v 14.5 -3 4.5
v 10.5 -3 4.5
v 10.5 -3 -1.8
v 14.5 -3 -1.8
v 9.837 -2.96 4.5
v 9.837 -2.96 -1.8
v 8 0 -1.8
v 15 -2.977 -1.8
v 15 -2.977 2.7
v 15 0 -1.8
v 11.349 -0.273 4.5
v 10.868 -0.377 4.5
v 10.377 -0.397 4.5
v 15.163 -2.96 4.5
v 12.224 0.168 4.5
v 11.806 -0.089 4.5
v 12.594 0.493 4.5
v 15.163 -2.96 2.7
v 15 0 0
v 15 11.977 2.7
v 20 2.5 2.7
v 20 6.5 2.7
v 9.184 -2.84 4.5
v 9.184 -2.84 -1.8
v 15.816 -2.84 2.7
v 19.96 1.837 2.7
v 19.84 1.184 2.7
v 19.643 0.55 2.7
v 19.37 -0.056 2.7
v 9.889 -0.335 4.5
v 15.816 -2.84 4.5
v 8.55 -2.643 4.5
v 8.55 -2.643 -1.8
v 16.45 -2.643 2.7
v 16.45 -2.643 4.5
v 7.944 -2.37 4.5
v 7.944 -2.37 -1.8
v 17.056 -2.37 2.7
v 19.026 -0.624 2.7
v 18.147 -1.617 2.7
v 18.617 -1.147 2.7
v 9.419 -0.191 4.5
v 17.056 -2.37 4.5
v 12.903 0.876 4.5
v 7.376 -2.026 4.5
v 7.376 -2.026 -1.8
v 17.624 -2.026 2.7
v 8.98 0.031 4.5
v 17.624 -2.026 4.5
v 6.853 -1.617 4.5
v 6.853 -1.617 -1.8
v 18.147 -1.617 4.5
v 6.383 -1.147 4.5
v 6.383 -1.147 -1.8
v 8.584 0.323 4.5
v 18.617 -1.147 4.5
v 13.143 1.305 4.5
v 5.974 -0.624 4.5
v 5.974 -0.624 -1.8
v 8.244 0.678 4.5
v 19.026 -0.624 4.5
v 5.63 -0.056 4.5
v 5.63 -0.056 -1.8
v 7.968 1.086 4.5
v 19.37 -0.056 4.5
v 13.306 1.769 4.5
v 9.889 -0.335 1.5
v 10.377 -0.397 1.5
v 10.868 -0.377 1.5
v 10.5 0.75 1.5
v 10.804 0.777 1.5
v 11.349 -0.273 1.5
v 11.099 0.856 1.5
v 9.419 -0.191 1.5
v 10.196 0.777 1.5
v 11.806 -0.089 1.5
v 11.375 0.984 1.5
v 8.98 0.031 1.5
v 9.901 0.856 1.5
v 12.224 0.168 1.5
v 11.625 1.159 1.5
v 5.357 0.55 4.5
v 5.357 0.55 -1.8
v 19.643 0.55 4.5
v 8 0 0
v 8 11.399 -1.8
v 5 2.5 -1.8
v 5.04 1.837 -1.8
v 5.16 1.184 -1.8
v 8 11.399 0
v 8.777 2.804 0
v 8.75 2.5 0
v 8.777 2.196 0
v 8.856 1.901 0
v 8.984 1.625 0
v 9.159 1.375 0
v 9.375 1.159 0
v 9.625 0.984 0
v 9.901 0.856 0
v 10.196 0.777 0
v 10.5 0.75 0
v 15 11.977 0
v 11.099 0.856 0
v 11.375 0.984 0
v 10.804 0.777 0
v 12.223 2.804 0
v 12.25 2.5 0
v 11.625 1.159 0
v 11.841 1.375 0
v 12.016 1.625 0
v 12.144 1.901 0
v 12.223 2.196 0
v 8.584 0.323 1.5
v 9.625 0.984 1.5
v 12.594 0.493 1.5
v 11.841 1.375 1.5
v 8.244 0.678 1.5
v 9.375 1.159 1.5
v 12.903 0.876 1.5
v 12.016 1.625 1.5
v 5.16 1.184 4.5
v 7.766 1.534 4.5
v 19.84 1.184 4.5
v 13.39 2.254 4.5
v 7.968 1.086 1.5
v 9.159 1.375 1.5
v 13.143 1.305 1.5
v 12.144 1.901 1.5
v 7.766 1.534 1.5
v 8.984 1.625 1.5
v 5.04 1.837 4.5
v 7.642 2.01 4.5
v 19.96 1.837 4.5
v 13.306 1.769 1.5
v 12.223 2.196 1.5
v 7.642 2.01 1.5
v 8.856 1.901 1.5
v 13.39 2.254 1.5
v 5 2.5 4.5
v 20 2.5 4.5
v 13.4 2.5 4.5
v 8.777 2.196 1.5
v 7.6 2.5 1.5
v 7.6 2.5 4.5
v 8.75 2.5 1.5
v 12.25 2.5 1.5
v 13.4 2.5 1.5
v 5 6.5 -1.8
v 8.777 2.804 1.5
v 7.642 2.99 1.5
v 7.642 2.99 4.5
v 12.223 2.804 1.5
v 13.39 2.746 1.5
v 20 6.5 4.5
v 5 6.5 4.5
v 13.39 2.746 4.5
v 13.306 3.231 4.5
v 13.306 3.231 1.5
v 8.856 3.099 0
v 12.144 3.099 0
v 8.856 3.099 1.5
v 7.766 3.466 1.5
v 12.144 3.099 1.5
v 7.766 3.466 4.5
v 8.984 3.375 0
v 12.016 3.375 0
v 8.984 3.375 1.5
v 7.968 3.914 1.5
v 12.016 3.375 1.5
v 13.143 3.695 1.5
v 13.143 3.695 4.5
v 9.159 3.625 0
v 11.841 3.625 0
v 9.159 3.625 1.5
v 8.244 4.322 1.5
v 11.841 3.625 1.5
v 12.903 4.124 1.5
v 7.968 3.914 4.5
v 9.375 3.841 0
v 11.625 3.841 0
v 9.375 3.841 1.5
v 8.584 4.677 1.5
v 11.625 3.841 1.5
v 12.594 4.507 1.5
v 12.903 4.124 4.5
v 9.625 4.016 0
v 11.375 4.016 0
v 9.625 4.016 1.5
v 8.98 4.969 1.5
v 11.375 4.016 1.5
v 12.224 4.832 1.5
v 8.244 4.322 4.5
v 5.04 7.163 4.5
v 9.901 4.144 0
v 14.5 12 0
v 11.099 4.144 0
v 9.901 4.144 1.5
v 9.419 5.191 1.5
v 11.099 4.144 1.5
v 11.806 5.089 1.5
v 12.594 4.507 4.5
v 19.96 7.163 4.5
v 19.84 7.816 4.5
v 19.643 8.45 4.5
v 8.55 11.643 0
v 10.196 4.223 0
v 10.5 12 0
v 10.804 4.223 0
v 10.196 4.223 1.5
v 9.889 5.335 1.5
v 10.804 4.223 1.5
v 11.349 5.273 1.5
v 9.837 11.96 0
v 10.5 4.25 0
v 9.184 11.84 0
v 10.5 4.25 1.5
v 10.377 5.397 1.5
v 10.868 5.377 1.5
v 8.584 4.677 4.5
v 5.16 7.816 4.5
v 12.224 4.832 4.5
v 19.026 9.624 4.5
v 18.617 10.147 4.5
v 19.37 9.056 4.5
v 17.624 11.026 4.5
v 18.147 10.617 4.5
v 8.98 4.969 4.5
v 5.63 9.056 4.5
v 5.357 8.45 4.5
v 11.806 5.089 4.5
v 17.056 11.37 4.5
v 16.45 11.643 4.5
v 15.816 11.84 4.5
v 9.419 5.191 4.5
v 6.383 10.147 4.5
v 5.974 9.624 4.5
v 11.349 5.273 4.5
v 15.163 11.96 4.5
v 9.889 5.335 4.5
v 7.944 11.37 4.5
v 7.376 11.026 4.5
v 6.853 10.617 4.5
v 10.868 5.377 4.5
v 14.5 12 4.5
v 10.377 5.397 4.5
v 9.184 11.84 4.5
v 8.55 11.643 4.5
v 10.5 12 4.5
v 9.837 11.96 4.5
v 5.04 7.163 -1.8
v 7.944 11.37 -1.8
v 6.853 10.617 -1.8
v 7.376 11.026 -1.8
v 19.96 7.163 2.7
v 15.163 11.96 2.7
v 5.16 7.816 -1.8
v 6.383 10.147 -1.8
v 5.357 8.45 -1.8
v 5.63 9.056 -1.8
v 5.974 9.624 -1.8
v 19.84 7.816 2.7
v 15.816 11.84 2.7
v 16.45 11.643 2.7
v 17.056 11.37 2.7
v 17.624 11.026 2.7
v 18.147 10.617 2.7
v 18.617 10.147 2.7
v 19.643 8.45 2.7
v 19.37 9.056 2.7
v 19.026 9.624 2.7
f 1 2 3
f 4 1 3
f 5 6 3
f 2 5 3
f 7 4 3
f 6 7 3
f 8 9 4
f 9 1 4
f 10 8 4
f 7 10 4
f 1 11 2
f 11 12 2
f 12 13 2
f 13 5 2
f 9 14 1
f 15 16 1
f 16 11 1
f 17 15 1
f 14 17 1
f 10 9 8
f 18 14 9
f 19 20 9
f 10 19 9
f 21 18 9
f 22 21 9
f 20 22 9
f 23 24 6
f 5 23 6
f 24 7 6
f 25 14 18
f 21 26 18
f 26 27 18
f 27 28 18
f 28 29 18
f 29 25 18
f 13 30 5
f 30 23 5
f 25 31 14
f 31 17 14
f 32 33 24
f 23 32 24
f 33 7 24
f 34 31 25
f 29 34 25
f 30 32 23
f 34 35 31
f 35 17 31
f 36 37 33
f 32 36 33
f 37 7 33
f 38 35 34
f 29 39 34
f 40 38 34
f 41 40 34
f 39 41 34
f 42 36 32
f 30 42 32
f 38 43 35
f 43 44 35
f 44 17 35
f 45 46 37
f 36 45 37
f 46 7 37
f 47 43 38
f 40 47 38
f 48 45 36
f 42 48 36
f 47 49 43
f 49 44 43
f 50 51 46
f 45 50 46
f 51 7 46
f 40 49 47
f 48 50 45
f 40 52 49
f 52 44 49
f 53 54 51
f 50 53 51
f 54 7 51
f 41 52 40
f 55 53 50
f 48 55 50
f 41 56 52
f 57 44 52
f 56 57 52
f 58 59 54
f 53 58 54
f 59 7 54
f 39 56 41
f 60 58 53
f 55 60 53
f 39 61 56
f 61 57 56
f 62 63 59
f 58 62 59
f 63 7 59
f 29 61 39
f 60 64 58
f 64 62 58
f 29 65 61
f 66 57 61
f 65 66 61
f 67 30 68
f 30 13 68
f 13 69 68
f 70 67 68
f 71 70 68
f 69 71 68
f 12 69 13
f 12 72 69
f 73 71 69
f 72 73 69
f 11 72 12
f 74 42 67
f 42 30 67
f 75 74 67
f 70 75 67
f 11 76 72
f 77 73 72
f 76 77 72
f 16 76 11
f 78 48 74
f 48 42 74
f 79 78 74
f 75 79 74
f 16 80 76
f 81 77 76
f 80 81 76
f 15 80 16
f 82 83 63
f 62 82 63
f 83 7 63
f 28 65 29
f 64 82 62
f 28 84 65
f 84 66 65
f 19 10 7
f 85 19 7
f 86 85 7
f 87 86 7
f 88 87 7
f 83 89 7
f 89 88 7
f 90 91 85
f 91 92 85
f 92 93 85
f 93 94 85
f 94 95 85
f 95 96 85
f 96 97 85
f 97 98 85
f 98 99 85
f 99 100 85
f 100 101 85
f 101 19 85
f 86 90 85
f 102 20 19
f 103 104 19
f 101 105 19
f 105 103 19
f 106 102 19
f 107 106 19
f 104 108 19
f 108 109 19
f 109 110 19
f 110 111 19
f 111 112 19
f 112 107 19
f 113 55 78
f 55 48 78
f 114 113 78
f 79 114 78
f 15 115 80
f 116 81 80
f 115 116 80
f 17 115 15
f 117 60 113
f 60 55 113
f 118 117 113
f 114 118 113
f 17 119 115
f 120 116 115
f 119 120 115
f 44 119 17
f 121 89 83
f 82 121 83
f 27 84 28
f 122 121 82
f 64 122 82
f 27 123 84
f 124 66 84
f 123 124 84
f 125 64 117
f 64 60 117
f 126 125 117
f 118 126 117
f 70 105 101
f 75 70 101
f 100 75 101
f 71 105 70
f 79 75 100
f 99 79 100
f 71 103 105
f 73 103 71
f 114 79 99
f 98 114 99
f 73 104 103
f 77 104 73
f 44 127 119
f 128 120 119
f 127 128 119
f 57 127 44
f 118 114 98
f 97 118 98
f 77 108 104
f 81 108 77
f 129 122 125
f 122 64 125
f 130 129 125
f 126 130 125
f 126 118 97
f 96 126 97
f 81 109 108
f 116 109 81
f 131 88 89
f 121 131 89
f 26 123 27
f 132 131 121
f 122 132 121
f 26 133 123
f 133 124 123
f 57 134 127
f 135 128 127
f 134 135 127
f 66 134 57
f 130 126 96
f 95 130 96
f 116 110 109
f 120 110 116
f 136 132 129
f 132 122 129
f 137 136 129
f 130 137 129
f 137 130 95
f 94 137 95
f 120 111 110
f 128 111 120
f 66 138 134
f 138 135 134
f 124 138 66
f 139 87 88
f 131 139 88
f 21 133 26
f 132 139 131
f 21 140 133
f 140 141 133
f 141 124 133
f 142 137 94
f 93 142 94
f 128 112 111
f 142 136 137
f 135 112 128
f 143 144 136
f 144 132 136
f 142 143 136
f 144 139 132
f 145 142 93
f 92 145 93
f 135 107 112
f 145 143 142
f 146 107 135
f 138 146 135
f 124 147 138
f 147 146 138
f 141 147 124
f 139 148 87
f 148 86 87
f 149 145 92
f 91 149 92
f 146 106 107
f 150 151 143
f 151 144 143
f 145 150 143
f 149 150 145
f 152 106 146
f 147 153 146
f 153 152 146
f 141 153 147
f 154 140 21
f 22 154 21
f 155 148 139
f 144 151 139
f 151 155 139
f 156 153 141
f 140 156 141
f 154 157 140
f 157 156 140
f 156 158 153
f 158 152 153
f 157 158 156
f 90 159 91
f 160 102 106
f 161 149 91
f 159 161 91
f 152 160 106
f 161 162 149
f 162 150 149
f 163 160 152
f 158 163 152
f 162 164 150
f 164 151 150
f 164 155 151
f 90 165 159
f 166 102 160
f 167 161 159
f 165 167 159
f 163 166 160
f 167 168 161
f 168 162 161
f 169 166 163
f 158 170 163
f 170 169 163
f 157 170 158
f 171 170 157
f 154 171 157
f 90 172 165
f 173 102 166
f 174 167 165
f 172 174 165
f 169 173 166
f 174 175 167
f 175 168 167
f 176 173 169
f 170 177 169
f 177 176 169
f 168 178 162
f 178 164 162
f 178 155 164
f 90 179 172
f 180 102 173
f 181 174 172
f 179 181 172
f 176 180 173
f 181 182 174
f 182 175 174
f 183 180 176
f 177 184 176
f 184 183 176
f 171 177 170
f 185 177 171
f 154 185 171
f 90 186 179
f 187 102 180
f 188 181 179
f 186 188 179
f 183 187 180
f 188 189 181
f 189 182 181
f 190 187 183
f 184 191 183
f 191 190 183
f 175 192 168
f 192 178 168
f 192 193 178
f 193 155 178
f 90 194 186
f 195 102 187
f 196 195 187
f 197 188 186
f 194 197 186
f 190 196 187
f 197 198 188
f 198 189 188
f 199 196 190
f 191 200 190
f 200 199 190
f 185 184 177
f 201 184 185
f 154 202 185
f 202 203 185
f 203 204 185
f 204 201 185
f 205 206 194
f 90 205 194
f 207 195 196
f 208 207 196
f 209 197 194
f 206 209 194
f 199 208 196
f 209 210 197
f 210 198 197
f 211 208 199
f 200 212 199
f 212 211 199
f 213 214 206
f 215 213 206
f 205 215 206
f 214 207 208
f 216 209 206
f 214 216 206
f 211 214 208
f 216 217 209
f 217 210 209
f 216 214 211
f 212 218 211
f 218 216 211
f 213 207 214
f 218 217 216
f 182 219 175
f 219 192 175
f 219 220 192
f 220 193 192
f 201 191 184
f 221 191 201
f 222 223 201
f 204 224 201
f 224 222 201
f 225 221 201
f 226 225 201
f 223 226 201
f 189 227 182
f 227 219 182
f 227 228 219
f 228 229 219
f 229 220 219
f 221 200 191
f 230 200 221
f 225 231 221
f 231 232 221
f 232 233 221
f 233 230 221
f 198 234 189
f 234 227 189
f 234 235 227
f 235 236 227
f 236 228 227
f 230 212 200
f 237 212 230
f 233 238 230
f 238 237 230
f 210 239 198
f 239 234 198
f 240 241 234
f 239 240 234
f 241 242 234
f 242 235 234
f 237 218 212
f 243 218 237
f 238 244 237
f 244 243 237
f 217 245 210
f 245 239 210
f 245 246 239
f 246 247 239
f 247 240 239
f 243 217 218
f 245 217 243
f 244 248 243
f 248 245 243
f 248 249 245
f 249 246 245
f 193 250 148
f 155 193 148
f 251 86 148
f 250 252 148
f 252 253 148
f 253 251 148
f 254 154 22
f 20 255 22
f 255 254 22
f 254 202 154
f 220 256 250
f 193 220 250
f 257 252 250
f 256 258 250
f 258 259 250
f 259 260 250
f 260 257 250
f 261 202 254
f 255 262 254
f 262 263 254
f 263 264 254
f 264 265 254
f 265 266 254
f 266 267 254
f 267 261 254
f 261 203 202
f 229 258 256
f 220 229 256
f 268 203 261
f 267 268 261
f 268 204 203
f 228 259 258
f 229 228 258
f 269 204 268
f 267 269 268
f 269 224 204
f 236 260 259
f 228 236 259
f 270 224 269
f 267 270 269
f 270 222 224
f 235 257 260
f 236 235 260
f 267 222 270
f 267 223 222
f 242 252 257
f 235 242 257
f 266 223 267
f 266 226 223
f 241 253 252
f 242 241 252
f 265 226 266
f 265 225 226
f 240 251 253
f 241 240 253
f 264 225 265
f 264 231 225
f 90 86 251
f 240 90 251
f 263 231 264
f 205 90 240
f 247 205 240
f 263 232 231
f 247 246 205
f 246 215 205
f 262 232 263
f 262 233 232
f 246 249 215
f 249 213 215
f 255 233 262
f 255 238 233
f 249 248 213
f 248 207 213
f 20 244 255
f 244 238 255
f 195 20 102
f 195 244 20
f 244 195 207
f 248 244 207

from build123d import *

# Parameters (mm, degrees)
ESBO_O3_W                = 7
ESBO_O3_H                = 12
ESBO_O3_R                = 1.75
RESSALTO_EXTRUS_O2_DEPTH = 2.7
ESBO_O4_W                = 7
ESBO_O4_H                = 12
ESBO_O4_R                = 1.75
RESSALTO_EXTRUS_O3_DEPTH = 2.1
ESBO_O5_W                = 2.1
ESBO_O5_H                = 12
RESSALTO_EXTRUS_O4_DEPTH = 5
RESSALTO_EXTRUS_O5_DEPTH = 3
ESBO_O7_W                = 4.8
ESBO_O7_H                = 15
RESSALTO_EXTRUS_O6_DEPTH = 3
ESBO_O8_R                = 2.9
CORTE_EXTRUS_O1_DEPTH    = 3
FILETE1_R                = 5.5
RESSALTO_EXTRUS_O7_DEPTH = 1.5
CORTE_EXTRUS_O4_DEPTH    = 6.3
CORTE_EXTRUS_O5_DEPTH    = 6.3
RESSALTO_EXTRUS_O8_DEPTH = 0.3
CORTE_EXTRUS_O6_DEPTH    = 0.3
ESBO_O17_R               = 2.9
CORTE_EXTRUS_O7_DEPTH    = 0.3


with BuildPart() as part:
    # Esboço3 → Ressalto-extrusão2 (new body)
    with BuildSketch(Plane.XY):
        with Locations((-3.5, 6)):
            Rectangle(ESBO_O3_W, ESBO_O3_H)
        with Locations((-2.5, 2.5)):
            Circle(ESBO_O3_R, mode=Mode.SUBTRACT)
    extrude(amount=RESSALTO_EXTRUS_O2_DEPTH)

    # Esboço4 → Ressalto-extrusão3 (add)
    with BuildSketch(Plane.XY.offset(2.7)):
        with Locations((-3.5, 6)):
            Rectangle(ESBO_O4_W, ESBO_O4_H)
        with Locations((-2.5, 2.5)):
            Circle(ESBO_O4_R, mode=Mode.SUBTRACT)
    extrude(amount=RESSALTO_EXTRUS_O3_DEPTH)

    # Esboço5 → Ressalto-extrusão4 (add)
    with BuildSketch(Plane.ZY.offset(7)):
        with Locations((3.75, 6)):
            Rectangle(ESBO_O5_W, ESBO_O5_H)
    extrude(amount=RESSALTO_EXTRUS_O4_DEPTH)

    # Esboço6 → Ressalto-extrusão5 (add)
    with BuildSketch(Plane.XZ):
        Polygon((-7, 0), (0, 0), (0, 4.8), (-12, 4.8), (-12, 2.7), (-7, 2.7), align=None)
    extrude(amount=RESSALTO_EXTRUS_O5_DEPTH)

    # Esboço7 → Ressalto-extrusão6 (add)
    with BuildSketch(Plane(origin=(0, 0, 0), x_dir=(0, 0, -1), z_dir=(1, 0, 0))):
        with Locations((-2.4, 4.5)):
            Rectangle(ESBO_O7_W, ESBO_O7_H)
    extrude(amount=RESSALTO_EXTRUS_O6_DEPTH)

    # Esboço8 → Corte-extrusão1 (cut)
    with BuildSketch(Plane.XY.offset(4.8)):
        with Locations((-2.5, 2.5)):
            Circle(ESBO_O8_R)
    extrude(amount=-CORTE_EXTRUS_O1_DEPTH, mode=Mode.SUBTRACT)

    # Filete1
    filete1_edges = [part.edges().sort_by_distance(p)[0] for p in [
        (3, -3, 2.4),
    ]]
    fillet(filete1_edges, radius=FILETE1_R)

    # Esboço10 → Ressalto-extrusão7 (add)
    with BuildSketch(Plane(origin=(0, 0, 0), x_dir=(-1, 0, 0), z_dir=(0, 0, -1))):
        with BuildLine():
            Line((7, 0), (0, 0))
            Line((0, 0), (0, 12))
            Line((0, 12), (-3, 12))
            Line((-3, 12), (-3, 2.5))
            ThreePointArc((-3, 2.5), (-1.389087297, -1.389087297), (2.5, -3))
            Line((2.5, -3), (7, -3))
            Line((7, -3), (7, 0))
        make_face()
    extrude(amount=RESSALTO_EXTRUS_O7_DEPTH)

    # Esboço14 → Corte-extrusão4 (cut)
    with BuildSketch(Plane.XY.offset(4.8)):
        with BuildLine():
            Line((-12, 12), (-12, 6.5))
            ThreePointArc((-12, 6.5), (-10.389087297, 10.389087297), (-6.5, 12))
            Line((-6.5, 12), (-12, 12))
        make_face()
        with BuildLine():
            ThreePointArc((-2.5, 12), (1.389087297, 10.389087297), (3, 6.5))
            Line((3, 6.5), (3, 12))
            Line((3, 12), (-2.5, 12))
        make_face()
    extrude(amount=-CORTE_EXTRUS_O4_DEPTH, mode=Mode.SUBTRACT)

    # Esboço13 → Corte-extrusão5 (cut)
    with BuildSketch(Plane.XY.offset(4.8)):
        with BuildLine():
            Line((-12, -3), (-6.5, -3))
            ThreePointArc((-6.5, -3), (-10.389087297, -1.389087297), (-12, 2.5))
            Line((-12, 2.5), (-12, -3))
        make_face()
    extrude(amount=-CORTE_EXTRUS_O5_DEPTH, mode=Mode.SUBTRACT)

    # Esboço15 → Ressalto-extrusão8 (add)
    with BuildSketch(Plane(origin=(0, 0, -1.5), x_dir=(-1, 0, 0), z_dir=(0, 0, -1))):
        with BuildLine():
            Line((2.5, -3), (6.5, -3))
            ThreePointArc((6.5, -3), (6.750259203, -2.994303444), (7, -2.977225575))
            Line((7, -2.977225575), (7, 0))
            Line((7, 0), (0, 0))
            Line((0, 0), (0, 11.398979486))
            ThreePointArc((0, 11.398979486), (-2.19041576, 9.372281323), (-3, 6.5))
            Line((-3, 6.5), (-3, 2.5))
            ThreePointArc((-3, 2.5), (-1.389087297, -1.389087297), (2.5, -3))
        make_face()
    extrude(amount=RESSALTO_EXTRUS_O8_DEPTH)


with BuildPart() as body_2:
    # Espelhar3: mirrored copy
    add(part.part.mirror(Plane(origin=(4, 0, 0), x_dir=(0, 0, 1), z_dir=(1, 0, 0))))

    # Esboço16 → Corte-extrusão6 (cut)
    with BuildSketch(Plane.XY.offset(4.8)):
        with BuildLine():
            Line((20, 2.5), (20, 6.5))
            ThreePointArc((20, 6.5), (18.389087297, 10.389087297), (14.5, 12))
            Line((14.5, 12), (10.5, 12))
            ThreePointArc((10.5, 12), (6.610912703, 10.389087297), (5, 6.5))
            Line((5, 6.5), (5, 2.5))
            ThreePointArc((5, 2.5), (6.610912703, -1.389087297), (10.5, -3))
            Line((10.5, -3), (14.5, -3))
            ThreePointArc((14.5, -3), (18.389087297, -1.389087297), (20, 2.5))
        make_face()
    extrude(amount=-CORTE_EXTRUS_O6_DEPTH, mode=Mode.SUBTRACT)

    # Esboço17 → Corte-extrusão7 (cut)
    with BuildSketch(Plane.XY.offset(1.8)):
        with Locations((10.5, 2.5)):
            Circle(ESBO_O17_R)
    extrude(amount=-CORTE_EXTRUS_O7_DEPTH, mode=Mode.SUBTRACT)


solid = body_2.part
